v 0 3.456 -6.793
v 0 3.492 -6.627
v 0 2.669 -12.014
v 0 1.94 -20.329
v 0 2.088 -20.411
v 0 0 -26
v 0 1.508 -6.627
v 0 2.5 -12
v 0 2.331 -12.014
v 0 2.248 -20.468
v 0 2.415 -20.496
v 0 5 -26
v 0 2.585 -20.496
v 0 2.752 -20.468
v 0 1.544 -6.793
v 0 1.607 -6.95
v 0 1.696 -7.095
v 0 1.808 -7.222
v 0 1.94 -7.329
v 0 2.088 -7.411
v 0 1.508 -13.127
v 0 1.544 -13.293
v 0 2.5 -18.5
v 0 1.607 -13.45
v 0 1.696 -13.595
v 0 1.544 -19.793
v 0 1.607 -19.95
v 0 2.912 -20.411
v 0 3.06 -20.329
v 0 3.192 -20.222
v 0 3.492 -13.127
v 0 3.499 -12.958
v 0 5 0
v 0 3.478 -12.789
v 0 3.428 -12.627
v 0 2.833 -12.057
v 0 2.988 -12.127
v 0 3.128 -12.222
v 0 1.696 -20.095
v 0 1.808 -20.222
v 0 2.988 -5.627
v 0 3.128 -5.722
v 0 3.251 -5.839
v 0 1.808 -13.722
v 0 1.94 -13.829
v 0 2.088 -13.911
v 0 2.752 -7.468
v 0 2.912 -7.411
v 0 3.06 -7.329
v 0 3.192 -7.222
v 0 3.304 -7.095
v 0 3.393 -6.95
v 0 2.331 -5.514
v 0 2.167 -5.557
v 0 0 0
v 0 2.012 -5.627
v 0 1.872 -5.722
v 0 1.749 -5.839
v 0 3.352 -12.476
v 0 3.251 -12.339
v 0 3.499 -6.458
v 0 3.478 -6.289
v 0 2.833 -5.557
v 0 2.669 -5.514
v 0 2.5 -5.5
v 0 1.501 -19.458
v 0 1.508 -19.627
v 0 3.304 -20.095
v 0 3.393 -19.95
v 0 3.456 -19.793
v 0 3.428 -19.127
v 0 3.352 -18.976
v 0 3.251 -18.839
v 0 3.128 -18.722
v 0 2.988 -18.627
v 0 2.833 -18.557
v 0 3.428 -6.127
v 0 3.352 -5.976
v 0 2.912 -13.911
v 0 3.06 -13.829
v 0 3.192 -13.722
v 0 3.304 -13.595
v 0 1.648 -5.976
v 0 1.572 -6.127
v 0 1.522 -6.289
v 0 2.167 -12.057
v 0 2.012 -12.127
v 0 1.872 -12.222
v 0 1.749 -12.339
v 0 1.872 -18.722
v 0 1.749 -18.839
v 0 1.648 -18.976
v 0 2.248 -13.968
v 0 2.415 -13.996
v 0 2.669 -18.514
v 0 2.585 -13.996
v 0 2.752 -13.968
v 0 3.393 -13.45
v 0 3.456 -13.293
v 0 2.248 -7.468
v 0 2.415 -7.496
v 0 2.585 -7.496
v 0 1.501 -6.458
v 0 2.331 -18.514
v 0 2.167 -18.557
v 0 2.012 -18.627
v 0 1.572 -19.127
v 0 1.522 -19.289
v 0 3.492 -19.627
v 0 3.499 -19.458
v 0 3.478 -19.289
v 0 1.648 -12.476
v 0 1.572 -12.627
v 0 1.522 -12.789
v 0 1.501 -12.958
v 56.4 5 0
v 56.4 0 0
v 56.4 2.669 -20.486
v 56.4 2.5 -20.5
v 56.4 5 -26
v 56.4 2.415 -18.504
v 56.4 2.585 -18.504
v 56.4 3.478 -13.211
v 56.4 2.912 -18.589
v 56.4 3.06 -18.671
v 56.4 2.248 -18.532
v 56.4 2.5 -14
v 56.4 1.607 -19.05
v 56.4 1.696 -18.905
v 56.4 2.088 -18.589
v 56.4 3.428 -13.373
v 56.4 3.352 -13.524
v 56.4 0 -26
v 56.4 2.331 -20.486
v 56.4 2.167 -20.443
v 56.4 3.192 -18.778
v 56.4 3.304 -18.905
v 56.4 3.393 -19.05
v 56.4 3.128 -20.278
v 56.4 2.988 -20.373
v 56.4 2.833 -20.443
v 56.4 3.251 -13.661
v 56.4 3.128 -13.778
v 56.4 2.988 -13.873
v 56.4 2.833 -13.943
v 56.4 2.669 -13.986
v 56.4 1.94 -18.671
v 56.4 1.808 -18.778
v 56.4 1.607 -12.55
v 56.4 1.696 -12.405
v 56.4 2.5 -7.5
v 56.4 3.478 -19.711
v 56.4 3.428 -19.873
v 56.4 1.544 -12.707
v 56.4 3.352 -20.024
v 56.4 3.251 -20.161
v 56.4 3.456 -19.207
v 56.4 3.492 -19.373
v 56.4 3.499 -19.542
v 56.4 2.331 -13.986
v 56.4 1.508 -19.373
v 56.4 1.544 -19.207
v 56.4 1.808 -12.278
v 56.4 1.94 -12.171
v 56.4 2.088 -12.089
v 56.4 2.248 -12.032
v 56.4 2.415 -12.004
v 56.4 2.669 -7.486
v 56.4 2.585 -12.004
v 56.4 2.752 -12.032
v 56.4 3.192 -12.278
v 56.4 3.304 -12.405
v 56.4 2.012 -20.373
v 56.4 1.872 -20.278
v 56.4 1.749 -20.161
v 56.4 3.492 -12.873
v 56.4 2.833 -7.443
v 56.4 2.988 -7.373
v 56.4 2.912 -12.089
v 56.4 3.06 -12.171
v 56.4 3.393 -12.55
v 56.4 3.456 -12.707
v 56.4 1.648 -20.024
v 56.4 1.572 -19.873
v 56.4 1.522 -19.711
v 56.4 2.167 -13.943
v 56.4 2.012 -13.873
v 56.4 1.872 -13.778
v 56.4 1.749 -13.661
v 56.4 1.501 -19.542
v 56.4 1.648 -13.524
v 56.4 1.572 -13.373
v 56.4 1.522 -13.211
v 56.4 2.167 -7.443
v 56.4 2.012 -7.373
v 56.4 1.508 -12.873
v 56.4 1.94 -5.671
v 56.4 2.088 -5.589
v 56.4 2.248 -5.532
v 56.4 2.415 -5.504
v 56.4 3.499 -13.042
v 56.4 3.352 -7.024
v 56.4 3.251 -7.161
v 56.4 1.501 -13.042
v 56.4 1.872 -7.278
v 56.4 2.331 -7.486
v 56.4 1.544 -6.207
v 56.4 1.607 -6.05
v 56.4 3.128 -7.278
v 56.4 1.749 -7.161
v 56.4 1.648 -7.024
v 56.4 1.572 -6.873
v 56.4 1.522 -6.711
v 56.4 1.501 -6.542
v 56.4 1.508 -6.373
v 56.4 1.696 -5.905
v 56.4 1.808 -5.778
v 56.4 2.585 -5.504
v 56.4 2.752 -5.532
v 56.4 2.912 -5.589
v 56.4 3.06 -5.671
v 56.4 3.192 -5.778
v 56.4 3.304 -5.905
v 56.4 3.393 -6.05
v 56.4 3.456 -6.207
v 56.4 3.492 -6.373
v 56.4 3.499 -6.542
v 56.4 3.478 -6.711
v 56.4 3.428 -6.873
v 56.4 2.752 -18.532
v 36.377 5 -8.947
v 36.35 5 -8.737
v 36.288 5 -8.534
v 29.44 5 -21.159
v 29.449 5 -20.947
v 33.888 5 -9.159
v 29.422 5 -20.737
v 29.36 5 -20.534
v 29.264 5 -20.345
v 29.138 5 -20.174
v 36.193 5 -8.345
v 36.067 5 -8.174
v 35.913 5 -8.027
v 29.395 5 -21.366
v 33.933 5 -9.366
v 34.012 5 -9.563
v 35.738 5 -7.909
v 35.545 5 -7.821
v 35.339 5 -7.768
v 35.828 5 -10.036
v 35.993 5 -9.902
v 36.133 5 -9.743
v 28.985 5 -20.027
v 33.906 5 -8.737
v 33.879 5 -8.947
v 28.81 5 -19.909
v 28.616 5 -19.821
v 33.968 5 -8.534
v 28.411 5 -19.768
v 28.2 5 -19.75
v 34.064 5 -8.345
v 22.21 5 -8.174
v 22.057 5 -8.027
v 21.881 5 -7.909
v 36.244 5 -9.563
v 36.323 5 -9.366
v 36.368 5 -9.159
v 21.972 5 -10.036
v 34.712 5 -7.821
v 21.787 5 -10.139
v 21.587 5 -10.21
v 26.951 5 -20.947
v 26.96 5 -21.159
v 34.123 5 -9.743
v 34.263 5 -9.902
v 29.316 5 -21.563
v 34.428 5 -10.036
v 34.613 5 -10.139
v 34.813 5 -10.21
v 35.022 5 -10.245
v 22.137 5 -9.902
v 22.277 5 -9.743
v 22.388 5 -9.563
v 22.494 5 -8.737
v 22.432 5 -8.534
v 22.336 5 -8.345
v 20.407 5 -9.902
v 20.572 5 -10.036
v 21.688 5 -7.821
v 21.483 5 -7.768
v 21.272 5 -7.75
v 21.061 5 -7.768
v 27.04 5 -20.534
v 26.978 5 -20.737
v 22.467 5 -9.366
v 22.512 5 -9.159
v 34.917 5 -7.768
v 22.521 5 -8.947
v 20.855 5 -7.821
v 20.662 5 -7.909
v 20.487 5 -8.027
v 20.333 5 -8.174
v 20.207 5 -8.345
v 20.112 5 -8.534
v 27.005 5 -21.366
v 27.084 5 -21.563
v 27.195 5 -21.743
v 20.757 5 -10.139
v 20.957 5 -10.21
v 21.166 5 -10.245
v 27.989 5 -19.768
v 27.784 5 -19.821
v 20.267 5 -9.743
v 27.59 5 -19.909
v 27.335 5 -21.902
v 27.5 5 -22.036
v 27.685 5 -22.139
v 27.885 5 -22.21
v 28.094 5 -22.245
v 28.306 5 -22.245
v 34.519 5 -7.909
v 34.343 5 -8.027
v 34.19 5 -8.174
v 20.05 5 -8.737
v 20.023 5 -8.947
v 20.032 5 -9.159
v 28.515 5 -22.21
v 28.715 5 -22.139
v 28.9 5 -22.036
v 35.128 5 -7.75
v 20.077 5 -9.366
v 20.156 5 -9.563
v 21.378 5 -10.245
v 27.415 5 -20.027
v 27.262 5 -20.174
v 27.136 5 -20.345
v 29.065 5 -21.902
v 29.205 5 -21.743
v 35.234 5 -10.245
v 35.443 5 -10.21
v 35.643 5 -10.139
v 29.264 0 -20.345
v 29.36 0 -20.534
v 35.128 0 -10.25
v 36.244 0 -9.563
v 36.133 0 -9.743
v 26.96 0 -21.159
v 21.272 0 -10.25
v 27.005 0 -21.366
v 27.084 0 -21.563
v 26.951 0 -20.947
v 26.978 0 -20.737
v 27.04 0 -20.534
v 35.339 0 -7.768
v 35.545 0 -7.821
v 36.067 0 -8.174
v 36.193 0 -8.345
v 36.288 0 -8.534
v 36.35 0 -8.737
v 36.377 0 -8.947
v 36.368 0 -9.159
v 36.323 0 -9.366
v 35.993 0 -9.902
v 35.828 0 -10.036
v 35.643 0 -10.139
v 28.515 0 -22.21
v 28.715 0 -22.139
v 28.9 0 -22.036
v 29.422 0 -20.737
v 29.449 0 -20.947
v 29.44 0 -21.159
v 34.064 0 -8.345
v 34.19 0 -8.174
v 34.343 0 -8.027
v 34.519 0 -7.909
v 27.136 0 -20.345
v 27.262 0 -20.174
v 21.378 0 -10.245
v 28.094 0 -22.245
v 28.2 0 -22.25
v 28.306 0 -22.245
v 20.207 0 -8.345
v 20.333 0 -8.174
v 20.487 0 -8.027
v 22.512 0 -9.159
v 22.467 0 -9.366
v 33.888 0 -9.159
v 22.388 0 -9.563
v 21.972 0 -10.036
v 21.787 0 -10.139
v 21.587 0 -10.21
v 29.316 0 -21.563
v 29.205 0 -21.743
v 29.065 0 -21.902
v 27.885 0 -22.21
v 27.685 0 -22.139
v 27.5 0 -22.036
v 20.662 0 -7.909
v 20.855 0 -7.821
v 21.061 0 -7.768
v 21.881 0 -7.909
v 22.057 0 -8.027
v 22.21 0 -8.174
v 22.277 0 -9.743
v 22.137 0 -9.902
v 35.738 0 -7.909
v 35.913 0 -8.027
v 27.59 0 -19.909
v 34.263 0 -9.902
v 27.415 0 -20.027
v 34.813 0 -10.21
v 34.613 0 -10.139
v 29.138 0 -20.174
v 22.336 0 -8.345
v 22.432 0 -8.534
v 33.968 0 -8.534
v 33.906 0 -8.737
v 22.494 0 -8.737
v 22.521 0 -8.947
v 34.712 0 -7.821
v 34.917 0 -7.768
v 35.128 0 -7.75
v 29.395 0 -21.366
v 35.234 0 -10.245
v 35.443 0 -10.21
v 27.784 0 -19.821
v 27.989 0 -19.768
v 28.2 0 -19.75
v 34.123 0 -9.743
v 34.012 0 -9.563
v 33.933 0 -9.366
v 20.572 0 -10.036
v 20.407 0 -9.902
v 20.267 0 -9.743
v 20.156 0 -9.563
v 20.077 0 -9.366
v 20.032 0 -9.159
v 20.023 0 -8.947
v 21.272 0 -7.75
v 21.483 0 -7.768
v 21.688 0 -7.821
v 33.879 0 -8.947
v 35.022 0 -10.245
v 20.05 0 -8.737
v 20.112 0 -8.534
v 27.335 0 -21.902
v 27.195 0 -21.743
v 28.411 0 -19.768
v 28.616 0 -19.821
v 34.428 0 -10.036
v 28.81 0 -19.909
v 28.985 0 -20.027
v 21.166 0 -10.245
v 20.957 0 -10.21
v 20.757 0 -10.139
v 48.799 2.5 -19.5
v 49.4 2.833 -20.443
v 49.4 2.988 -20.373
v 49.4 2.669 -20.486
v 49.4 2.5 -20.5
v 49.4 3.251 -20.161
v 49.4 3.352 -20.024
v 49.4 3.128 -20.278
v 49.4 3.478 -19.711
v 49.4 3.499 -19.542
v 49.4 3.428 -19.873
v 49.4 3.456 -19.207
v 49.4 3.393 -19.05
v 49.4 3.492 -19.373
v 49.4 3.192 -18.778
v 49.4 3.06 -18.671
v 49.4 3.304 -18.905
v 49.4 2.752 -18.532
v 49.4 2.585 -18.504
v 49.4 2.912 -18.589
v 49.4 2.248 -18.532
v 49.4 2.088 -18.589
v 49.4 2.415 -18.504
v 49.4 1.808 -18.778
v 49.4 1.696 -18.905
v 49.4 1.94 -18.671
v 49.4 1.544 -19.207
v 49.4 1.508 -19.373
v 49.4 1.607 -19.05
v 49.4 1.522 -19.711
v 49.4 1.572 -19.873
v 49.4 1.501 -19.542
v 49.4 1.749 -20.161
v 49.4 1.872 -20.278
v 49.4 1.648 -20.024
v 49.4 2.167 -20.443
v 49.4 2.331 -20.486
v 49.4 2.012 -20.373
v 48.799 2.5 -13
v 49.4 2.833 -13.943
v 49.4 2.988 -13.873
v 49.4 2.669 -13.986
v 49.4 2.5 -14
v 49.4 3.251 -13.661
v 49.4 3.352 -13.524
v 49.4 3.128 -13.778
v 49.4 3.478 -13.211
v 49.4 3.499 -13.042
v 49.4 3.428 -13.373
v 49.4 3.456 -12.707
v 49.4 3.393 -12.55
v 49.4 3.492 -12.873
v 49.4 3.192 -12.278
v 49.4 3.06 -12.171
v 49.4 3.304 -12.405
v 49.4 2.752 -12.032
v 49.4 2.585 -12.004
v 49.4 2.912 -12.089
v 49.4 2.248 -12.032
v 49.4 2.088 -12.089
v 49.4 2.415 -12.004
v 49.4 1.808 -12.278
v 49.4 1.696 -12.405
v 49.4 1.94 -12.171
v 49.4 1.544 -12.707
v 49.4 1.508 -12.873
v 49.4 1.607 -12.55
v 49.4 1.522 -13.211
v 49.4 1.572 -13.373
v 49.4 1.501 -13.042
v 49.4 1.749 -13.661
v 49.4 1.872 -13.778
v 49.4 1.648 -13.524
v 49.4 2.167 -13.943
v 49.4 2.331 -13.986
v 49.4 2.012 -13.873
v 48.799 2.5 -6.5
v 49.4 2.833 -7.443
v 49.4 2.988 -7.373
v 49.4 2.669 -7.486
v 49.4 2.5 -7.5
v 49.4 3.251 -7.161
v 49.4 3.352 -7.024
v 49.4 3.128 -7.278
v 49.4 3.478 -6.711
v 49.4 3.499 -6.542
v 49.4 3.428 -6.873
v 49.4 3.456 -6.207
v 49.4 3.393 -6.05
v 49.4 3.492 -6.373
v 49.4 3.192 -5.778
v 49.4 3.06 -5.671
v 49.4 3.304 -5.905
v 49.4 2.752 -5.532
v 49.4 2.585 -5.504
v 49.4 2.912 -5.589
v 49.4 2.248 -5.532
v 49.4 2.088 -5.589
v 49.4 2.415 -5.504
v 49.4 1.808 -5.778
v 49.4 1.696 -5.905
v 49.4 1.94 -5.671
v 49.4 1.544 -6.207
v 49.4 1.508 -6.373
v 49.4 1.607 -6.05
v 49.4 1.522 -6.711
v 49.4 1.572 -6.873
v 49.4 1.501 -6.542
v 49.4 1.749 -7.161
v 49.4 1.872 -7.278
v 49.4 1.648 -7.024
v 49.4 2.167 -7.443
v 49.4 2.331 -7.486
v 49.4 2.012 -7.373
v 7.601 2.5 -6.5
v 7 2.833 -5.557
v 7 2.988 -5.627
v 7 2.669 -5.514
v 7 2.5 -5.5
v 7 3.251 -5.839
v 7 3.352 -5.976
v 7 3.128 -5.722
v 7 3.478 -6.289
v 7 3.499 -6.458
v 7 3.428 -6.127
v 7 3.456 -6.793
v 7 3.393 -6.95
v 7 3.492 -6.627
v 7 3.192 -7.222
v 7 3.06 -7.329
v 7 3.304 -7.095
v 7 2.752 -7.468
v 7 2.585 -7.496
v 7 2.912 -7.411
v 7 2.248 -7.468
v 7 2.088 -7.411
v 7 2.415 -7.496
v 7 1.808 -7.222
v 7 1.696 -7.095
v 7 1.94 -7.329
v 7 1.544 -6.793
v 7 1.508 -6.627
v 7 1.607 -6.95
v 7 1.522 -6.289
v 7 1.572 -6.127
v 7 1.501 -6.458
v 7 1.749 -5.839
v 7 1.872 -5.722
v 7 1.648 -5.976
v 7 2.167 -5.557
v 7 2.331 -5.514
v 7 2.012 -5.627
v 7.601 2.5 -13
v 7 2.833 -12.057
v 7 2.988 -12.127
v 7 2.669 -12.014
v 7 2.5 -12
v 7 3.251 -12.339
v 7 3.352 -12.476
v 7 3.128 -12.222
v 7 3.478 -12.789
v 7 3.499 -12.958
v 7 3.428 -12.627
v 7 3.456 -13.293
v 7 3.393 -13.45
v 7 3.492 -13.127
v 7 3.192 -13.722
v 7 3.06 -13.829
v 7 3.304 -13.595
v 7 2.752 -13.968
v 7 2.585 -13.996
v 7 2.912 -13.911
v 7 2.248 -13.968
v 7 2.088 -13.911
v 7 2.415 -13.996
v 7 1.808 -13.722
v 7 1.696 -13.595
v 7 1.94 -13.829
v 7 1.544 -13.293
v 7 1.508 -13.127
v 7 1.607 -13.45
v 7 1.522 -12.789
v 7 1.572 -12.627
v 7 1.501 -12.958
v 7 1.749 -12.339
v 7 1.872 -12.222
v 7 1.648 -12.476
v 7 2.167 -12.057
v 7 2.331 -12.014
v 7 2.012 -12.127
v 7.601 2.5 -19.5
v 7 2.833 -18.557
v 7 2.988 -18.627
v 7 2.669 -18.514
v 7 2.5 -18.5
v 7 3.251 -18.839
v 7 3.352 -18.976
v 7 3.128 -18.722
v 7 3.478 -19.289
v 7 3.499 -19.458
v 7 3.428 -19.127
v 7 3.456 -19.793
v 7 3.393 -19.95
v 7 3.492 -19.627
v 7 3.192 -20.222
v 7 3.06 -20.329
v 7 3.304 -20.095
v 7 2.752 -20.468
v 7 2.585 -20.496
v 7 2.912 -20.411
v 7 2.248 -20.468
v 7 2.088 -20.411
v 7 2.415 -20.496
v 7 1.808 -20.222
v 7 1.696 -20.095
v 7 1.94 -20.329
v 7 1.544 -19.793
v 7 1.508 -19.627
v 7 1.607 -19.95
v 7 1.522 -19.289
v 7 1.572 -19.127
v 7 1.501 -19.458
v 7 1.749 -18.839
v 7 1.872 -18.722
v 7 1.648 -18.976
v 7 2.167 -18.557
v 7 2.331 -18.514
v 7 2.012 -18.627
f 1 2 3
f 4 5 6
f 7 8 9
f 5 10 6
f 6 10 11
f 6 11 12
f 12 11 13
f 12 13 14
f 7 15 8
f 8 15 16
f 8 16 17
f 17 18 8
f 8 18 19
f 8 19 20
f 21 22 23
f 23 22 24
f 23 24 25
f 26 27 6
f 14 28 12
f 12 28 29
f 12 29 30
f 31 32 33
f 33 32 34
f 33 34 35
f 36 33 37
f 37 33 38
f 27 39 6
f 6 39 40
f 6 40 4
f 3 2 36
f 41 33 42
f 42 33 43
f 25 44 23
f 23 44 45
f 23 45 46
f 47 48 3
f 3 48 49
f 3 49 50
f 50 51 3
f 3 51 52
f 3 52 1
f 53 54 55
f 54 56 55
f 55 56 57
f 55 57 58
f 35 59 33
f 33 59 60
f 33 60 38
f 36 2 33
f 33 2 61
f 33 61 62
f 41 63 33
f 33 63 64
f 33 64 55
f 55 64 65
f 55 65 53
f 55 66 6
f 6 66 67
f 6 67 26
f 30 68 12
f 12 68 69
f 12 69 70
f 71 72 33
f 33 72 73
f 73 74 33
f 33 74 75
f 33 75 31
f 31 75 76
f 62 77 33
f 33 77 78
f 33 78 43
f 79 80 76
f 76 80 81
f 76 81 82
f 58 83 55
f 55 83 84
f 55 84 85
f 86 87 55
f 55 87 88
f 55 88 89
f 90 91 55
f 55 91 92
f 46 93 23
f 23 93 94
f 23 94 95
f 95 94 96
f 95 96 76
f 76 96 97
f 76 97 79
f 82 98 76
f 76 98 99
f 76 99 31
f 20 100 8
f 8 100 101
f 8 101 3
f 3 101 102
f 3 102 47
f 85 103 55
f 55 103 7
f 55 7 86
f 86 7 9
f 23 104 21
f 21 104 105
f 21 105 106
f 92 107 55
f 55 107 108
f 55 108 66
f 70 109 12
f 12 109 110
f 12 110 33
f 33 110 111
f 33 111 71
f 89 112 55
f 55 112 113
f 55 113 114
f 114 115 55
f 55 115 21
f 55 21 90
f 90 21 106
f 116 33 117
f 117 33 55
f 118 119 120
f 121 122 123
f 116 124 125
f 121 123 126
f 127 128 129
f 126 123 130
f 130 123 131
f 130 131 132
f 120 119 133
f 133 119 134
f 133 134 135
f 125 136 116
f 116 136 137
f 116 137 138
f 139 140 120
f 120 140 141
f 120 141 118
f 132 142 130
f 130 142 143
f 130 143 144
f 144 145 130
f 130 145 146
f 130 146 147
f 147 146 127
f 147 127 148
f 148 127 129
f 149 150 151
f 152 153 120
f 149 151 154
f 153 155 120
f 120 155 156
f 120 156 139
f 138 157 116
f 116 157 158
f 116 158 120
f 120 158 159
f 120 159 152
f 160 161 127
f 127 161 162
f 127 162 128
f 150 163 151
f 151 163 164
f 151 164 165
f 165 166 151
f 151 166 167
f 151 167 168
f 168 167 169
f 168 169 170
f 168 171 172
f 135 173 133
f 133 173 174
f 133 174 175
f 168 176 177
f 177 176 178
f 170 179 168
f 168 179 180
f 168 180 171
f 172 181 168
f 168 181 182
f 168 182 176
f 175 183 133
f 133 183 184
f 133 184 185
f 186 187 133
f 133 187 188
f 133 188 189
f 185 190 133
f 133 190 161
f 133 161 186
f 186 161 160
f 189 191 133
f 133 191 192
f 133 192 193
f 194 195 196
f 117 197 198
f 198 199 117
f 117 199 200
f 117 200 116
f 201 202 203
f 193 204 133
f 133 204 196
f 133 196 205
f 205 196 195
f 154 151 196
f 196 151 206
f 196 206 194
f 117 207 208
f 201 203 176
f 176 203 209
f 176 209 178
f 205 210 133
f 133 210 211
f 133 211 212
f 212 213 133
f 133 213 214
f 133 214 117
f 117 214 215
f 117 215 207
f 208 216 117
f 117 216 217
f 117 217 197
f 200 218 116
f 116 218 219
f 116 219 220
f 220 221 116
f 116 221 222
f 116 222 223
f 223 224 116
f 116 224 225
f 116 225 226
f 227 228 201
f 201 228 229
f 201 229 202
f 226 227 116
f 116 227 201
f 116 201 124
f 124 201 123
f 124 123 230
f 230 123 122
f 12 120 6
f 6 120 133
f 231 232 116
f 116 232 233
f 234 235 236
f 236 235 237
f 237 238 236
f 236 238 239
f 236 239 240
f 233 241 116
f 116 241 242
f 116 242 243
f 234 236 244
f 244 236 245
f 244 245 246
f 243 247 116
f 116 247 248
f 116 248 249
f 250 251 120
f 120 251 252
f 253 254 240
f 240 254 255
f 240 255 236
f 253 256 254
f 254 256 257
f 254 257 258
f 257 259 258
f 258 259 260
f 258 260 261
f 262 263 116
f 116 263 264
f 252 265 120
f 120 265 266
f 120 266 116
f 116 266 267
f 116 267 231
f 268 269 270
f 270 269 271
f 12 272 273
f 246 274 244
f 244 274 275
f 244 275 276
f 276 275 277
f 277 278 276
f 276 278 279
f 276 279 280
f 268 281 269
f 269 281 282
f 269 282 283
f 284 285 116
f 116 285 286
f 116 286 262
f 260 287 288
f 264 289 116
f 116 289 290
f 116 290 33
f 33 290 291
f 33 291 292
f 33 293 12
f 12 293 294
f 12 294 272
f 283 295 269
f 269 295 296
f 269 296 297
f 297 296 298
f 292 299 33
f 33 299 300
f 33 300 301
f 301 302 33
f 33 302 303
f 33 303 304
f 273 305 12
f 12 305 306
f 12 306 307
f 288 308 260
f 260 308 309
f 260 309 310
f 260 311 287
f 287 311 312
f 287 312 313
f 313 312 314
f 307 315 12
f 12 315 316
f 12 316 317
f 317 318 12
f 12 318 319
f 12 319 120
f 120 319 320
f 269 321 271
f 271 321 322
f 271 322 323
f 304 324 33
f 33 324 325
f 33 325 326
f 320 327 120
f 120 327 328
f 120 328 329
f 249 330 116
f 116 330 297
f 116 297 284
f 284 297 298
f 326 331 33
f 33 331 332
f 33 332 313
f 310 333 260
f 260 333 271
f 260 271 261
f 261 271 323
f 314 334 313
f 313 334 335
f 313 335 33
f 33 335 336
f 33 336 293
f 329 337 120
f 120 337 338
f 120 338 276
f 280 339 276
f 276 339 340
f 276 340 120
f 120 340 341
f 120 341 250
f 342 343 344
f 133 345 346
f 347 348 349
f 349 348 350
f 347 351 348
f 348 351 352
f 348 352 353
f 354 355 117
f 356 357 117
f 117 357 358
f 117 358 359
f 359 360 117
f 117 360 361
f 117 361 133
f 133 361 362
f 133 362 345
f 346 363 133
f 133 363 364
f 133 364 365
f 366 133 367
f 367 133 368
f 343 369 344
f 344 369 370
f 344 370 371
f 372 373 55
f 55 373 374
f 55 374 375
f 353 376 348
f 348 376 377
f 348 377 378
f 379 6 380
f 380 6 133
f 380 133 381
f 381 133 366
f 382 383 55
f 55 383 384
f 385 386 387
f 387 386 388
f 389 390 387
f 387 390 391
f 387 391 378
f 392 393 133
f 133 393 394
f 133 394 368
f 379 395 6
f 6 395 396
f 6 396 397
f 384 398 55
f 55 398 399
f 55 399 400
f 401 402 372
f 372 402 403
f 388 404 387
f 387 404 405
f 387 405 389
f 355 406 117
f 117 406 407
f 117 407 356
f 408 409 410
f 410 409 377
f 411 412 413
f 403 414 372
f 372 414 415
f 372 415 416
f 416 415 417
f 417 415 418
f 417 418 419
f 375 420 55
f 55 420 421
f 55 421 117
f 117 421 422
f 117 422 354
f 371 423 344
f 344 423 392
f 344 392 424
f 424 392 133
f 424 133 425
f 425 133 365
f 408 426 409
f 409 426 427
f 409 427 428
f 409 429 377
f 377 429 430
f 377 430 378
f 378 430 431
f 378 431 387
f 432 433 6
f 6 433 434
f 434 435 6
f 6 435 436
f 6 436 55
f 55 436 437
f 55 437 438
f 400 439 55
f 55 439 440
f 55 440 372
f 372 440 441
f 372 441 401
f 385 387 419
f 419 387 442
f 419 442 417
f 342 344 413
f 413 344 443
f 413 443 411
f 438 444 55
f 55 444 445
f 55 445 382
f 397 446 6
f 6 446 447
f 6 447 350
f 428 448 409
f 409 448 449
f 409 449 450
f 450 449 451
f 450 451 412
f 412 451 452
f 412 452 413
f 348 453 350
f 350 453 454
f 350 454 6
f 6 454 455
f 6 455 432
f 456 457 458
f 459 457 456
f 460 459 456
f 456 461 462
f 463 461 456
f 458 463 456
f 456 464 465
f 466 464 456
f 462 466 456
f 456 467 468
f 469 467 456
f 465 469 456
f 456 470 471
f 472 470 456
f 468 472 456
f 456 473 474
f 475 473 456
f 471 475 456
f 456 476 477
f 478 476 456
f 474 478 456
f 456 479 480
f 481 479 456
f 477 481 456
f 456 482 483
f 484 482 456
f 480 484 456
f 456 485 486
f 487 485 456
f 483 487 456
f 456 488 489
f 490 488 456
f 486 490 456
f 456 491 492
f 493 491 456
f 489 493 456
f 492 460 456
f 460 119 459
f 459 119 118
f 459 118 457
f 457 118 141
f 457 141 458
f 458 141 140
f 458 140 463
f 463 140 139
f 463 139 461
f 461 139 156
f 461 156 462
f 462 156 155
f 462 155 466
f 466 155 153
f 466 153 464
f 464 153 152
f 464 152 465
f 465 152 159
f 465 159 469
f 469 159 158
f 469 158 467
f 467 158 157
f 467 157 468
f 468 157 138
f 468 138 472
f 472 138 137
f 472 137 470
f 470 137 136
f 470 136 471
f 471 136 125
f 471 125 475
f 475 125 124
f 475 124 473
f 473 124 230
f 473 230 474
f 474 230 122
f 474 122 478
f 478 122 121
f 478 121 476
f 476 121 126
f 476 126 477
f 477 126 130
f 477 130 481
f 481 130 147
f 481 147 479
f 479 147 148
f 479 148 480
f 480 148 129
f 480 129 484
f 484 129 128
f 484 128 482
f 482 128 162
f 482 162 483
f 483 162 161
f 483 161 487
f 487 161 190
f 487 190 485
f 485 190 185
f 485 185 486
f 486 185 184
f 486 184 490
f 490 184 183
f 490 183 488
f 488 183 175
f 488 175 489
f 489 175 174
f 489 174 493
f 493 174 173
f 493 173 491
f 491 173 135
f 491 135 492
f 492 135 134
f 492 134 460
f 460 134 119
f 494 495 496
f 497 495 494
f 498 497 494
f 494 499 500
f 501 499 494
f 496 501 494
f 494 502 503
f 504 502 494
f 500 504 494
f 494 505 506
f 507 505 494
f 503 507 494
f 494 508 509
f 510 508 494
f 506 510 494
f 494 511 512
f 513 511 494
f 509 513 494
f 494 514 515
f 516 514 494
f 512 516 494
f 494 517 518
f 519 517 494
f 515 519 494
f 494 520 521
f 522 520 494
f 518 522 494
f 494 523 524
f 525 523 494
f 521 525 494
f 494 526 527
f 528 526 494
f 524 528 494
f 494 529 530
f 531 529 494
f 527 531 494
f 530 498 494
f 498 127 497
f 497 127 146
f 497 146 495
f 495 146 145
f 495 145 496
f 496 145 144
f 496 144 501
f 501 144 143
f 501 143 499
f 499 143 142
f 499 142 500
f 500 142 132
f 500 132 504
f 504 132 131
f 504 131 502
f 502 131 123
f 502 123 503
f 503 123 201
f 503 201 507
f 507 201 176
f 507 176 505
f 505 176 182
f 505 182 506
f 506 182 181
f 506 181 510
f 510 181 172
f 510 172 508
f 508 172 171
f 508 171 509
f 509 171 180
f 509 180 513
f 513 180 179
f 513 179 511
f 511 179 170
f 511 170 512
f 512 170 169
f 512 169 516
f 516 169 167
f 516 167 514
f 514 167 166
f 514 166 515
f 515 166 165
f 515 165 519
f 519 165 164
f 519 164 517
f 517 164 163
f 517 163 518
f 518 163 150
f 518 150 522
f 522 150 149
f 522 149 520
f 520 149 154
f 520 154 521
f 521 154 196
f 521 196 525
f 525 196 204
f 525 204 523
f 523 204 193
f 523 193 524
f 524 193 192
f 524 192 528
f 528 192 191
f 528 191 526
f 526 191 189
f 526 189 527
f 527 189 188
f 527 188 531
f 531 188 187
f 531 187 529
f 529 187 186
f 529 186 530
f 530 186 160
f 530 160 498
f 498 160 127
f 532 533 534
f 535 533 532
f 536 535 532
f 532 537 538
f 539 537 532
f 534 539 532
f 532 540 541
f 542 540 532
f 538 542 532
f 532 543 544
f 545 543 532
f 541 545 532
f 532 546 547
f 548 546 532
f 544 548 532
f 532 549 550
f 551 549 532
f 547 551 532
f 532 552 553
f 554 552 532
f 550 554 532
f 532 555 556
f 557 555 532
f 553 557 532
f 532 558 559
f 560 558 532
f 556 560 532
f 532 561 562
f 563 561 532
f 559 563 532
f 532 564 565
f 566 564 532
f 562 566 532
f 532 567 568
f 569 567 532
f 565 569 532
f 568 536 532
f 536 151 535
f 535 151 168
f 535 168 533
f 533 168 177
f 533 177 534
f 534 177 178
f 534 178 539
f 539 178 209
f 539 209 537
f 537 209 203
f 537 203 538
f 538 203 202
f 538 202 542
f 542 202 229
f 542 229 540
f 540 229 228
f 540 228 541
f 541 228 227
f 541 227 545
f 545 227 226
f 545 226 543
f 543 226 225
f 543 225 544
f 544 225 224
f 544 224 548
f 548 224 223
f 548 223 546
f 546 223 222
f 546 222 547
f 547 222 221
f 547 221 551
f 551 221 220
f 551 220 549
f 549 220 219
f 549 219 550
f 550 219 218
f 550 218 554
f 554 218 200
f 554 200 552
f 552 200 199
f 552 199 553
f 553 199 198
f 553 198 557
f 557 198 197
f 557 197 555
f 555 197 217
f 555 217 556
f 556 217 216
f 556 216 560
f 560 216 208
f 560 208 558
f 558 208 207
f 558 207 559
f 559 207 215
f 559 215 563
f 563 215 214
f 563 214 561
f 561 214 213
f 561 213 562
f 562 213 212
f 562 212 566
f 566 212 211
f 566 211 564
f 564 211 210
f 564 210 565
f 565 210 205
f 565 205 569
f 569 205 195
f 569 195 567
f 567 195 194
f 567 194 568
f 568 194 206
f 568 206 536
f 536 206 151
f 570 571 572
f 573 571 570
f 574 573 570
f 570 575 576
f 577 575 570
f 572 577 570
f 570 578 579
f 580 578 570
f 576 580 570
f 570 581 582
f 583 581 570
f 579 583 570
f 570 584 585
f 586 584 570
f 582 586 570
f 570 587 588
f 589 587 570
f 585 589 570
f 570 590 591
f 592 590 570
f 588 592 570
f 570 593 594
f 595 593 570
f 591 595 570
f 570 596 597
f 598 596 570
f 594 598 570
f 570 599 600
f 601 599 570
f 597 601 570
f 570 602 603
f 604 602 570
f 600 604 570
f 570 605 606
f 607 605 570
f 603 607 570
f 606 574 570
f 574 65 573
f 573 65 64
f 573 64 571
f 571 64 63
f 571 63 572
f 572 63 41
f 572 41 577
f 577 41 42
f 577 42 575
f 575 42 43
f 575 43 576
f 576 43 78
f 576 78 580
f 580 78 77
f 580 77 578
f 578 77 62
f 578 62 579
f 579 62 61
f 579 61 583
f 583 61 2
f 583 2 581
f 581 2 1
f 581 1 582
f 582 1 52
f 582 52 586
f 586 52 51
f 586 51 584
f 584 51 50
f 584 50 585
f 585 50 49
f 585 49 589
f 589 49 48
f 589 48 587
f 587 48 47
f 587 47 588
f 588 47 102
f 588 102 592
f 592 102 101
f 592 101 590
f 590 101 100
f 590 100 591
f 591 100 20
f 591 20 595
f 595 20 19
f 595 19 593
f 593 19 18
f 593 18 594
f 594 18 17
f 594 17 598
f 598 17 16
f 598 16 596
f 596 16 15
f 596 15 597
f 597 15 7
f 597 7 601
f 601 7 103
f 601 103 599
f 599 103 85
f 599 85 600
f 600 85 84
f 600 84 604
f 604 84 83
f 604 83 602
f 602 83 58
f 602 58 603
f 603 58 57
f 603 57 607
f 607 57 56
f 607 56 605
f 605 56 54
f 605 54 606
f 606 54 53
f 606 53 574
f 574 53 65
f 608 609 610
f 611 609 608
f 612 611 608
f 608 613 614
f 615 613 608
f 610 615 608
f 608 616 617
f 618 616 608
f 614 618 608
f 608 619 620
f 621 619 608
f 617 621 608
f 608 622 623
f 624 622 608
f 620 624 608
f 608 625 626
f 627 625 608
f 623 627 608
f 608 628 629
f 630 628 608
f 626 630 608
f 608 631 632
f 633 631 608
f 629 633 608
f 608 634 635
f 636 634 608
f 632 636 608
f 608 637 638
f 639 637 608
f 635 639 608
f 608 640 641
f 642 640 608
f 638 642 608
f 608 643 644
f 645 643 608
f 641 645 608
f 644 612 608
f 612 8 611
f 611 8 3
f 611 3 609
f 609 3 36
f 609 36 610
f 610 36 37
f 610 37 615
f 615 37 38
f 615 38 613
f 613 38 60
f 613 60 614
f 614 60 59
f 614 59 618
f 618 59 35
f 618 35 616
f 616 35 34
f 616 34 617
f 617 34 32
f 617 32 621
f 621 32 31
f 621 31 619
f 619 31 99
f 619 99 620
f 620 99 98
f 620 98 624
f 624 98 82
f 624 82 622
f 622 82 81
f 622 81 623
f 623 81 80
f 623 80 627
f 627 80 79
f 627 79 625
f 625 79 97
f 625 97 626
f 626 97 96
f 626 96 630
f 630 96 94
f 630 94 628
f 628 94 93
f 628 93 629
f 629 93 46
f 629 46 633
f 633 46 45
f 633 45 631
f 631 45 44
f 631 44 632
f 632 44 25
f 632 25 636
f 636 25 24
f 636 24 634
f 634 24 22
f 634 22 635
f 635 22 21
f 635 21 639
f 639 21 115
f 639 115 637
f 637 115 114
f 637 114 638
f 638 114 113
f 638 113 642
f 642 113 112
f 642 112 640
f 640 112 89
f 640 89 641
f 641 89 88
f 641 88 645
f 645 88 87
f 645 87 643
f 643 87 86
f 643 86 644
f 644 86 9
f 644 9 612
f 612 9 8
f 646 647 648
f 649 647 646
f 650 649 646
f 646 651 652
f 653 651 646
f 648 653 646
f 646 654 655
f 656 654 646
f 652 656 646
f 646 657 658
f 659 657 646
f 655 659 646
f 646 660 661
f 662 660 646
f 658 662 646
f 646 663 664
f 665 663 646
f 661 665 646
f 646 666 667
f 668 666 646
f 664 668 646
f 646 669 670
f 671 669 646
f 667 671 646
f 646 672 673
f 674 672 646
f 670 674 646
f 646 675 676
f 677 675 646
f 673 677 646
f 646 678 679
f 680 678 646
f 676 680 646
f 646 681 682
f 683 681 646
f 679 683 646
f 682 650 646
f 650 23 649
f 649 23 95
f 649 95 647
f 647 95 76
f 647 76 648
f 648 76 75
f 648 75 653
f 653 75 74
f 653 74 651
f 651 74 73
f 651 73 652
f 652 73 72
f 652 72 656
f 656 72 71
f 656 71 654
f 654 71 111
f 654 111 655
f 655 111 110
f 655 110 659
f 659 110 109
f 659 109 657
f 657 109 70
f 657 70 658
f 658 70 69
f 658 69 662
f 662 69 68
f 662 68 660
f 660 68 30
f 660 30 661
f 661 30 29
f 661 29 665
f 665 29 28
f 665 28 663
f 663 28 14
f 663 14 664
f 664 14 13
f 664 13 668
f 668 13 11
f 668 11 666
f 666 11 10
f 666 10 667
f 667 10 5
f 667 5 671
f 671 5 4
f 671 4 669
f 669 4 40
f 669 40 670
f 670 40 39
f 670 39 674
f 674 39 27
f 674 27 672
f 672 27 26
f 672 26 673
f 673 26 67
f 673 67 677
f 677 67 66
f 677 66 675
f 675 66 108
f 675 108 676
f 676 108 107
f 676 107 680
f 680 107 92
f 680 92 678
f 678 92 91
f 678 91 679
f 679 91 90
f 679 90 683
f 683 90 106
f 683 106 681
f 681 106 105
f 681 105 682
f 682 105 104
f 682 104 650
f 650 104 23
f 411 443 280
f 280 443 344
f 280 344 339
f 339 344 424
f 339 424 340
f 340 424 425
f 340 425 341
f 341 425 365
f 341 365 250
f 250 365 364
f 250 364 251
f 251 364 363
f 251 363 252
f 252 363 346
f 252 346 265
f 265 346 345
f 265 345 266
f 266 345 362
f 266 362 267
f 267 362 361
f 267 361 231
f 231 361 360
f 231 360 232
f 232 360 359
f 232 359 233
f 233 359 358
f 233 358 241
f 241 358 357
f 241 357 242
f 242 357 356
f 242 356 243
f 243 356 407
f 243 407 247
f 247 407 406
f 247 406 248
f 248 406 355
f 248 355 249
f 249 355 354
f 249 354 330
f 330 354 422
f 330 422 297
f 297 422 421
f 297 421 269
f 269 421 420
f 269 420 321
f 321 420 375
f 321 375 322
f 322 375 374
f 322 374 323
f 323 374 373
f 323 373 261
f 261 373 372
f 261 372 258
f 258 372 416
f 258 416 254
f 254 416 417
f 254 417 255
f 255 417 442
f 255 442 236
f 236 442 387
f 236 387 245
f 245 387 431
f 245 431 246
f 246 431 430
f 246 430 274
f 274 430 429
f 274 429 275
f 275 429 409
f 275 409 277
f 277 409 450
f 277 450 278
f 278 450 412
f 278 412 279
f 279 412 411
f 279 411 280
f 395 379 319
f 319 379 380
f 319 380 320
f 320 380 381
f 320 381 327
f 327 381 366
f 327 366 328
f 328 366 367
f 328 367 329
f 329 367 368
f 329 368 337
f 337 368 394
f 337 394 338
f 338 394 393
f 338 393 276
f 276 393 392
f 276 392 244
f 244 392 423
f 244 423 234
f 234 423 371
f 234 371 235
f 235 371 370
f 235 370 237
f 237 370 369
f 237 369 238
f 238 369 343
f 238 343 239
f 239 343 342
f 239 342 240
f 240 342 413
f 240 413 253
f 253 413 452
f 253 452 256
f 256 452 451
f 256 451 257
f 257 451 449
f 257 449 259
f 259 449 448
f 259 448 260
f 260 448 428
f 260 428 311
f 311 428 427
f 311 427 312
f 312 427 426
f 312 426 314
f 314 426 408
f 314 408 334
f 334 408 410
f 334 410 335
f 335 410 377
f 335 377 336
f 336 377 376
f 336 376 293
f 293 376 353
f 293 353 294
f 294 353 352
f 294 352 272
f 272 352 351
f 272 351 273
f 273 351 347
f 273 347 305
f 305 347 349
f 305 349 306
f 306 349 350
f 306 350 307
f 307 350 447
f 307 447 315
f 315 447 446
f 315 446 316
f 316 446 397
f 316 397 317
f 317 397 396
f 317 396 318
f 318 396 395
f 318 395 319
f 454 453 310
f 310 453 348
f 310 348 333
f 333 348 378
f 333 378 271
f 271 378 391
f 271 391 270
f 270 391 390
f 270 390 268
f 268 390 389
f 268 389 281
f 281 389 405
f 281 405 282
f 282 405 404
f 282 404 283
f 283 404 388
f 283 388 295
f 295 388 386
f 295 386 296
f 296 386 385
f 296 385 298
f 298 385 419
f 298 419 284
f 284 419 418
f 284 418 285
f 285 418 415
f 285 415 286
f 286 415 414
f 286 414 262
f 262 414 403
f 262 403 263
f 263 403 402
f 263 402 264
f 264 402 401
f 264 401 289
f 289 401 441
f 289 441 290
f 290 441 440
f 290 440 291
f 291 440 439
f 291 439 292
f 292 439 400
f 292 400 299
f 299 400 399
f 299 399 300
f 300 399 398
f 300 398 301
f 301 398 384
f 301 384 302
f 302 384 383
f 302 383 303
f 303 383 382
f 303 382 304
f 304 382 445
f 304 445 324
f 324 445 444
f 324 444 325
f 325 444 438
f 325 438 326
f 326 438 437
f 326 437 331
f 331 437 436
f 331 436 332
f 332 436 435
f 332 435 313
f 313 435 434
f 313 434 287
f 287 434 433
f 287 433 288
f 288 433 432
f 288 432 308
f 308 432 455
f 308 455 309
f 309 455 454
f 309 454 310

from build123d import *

# Parameters (mm, degrees)
SKETCH1_W                 = 56.4
SKETCH1_H                 = 26
BOSS_EXTRUDE1_DEPTH       = 5
F_2_0MM_DOWEL_HOLE1_D     = 2
F_2_0MM_DOWEL_HOLE1_DEPTH = 7
F_2_0MM_DOWEL_HOLE1_TIP   = 0.600860619
F_2_0MM_DOWEL_HOLE2_D     = 2
F_2_0MM_DOWEL_HOLE2_DEPTH = 7
F_2_0MM_DOWEL_HOLE2_TIP   = 0.600860619
F_2_5MM_DOWEL_HOLE1_D     = 2.5
F_2_5MM_DOWEL_HOLE1_DEPTH = 8
F_2_5MM_DOWEL_HOLE1_TIP   = 0.751075774


with BuildPart() as part:
    # Sketch1 → Boss-Extrude1 (new body)
    with BuildSketch(Plane(origin=(0, 0, 0), x_dir=(1, 0, 0), z_dir=(0, 1, 0))):
        with Locations((28.2, 13)):
            Rectangle(SKETCH1_W, SKETCH1_H)
    extrude(amount=BOSS_EXTRUDE1_DEPTH)

    # Ø2.0mm Dowel Hole1
    with Locations(Plane(origin=(56.4, 0, 0), x_dir=(0, 0, -1), z_dir=(1, 0, 0))):
        with Locations((6.5, 2.5), (13, 2.5), (19.5, 2.5)):
            Hole(F_2_0MM_DOWEL_HOLE1_D / 2, depth=F_2_0MM_DOWEL_HOLE1_DEPTH)
            with Locations((0, 0, -(F_2_0MM_DOWEL_HOLE1_DEPTH + F_2_0MM_DOWEL_HOLE1_TIP / 2))):  # 118° drill point
                Cone(0, F_2_0MM_DOWEL_HOLE1_D / 2, F_2_0MM_DOWEL_HOLE1_TIP, mode=Mode.SUBTRACT)

    # Ø2.0mm Dowel Hole2
    with Locations(Plane.ZY):
        with Locations((-19.5, 2.5), (-13, 2.5), (-6.5, 2.5)):
            Hole(F_2_0MM_DOWEL_HOLE2_D / 2, depth=F_2_0MM_DOWEL_HOLE2_DEPTH)
            with Locations((0, 0, -(F_2_0MM_DOWEL_HOLE2_DEPTH + F_2_0MM_DOWEL_HOLE2_TIP / 2))):  # 118° drill point
                Cone(0, F_2_0MM_DOWEL_HOLE2_D / 2, F_2_0MM_DOWEL_HOLE2_TIP, mode=Mode.SUBTRACT)

    # Ø2.5mm Dowel Hole1
    with Locations(Plane(origin=(21.27179677, 5, -9), x_dir=(0, 0, 1), z_dir=(0, 1, 0))):
        with Locations((0, 0), (-12, 6.92820323), (0, 13.85640646)):
            Hole(F_2_5MM_DOWEL_HOLE1_D / 2, depth=F_2_5MM_DOWEL_HOLE1_DEPTH)
            with Locations((0, 0, -(F_2_5MM_DOWEL_HOLE1_DEPTH + F_2_5MM_DOWEL_HOLE1_TIP / 2))):  # 118° drill point
                Cone(0, F_2_5MM_DOWEL_HOLE1_D / 2, F_2_5MM_DOWEL_HOLE1_TIP, mode=Mode.SUBTRACT)


solid = part.part
